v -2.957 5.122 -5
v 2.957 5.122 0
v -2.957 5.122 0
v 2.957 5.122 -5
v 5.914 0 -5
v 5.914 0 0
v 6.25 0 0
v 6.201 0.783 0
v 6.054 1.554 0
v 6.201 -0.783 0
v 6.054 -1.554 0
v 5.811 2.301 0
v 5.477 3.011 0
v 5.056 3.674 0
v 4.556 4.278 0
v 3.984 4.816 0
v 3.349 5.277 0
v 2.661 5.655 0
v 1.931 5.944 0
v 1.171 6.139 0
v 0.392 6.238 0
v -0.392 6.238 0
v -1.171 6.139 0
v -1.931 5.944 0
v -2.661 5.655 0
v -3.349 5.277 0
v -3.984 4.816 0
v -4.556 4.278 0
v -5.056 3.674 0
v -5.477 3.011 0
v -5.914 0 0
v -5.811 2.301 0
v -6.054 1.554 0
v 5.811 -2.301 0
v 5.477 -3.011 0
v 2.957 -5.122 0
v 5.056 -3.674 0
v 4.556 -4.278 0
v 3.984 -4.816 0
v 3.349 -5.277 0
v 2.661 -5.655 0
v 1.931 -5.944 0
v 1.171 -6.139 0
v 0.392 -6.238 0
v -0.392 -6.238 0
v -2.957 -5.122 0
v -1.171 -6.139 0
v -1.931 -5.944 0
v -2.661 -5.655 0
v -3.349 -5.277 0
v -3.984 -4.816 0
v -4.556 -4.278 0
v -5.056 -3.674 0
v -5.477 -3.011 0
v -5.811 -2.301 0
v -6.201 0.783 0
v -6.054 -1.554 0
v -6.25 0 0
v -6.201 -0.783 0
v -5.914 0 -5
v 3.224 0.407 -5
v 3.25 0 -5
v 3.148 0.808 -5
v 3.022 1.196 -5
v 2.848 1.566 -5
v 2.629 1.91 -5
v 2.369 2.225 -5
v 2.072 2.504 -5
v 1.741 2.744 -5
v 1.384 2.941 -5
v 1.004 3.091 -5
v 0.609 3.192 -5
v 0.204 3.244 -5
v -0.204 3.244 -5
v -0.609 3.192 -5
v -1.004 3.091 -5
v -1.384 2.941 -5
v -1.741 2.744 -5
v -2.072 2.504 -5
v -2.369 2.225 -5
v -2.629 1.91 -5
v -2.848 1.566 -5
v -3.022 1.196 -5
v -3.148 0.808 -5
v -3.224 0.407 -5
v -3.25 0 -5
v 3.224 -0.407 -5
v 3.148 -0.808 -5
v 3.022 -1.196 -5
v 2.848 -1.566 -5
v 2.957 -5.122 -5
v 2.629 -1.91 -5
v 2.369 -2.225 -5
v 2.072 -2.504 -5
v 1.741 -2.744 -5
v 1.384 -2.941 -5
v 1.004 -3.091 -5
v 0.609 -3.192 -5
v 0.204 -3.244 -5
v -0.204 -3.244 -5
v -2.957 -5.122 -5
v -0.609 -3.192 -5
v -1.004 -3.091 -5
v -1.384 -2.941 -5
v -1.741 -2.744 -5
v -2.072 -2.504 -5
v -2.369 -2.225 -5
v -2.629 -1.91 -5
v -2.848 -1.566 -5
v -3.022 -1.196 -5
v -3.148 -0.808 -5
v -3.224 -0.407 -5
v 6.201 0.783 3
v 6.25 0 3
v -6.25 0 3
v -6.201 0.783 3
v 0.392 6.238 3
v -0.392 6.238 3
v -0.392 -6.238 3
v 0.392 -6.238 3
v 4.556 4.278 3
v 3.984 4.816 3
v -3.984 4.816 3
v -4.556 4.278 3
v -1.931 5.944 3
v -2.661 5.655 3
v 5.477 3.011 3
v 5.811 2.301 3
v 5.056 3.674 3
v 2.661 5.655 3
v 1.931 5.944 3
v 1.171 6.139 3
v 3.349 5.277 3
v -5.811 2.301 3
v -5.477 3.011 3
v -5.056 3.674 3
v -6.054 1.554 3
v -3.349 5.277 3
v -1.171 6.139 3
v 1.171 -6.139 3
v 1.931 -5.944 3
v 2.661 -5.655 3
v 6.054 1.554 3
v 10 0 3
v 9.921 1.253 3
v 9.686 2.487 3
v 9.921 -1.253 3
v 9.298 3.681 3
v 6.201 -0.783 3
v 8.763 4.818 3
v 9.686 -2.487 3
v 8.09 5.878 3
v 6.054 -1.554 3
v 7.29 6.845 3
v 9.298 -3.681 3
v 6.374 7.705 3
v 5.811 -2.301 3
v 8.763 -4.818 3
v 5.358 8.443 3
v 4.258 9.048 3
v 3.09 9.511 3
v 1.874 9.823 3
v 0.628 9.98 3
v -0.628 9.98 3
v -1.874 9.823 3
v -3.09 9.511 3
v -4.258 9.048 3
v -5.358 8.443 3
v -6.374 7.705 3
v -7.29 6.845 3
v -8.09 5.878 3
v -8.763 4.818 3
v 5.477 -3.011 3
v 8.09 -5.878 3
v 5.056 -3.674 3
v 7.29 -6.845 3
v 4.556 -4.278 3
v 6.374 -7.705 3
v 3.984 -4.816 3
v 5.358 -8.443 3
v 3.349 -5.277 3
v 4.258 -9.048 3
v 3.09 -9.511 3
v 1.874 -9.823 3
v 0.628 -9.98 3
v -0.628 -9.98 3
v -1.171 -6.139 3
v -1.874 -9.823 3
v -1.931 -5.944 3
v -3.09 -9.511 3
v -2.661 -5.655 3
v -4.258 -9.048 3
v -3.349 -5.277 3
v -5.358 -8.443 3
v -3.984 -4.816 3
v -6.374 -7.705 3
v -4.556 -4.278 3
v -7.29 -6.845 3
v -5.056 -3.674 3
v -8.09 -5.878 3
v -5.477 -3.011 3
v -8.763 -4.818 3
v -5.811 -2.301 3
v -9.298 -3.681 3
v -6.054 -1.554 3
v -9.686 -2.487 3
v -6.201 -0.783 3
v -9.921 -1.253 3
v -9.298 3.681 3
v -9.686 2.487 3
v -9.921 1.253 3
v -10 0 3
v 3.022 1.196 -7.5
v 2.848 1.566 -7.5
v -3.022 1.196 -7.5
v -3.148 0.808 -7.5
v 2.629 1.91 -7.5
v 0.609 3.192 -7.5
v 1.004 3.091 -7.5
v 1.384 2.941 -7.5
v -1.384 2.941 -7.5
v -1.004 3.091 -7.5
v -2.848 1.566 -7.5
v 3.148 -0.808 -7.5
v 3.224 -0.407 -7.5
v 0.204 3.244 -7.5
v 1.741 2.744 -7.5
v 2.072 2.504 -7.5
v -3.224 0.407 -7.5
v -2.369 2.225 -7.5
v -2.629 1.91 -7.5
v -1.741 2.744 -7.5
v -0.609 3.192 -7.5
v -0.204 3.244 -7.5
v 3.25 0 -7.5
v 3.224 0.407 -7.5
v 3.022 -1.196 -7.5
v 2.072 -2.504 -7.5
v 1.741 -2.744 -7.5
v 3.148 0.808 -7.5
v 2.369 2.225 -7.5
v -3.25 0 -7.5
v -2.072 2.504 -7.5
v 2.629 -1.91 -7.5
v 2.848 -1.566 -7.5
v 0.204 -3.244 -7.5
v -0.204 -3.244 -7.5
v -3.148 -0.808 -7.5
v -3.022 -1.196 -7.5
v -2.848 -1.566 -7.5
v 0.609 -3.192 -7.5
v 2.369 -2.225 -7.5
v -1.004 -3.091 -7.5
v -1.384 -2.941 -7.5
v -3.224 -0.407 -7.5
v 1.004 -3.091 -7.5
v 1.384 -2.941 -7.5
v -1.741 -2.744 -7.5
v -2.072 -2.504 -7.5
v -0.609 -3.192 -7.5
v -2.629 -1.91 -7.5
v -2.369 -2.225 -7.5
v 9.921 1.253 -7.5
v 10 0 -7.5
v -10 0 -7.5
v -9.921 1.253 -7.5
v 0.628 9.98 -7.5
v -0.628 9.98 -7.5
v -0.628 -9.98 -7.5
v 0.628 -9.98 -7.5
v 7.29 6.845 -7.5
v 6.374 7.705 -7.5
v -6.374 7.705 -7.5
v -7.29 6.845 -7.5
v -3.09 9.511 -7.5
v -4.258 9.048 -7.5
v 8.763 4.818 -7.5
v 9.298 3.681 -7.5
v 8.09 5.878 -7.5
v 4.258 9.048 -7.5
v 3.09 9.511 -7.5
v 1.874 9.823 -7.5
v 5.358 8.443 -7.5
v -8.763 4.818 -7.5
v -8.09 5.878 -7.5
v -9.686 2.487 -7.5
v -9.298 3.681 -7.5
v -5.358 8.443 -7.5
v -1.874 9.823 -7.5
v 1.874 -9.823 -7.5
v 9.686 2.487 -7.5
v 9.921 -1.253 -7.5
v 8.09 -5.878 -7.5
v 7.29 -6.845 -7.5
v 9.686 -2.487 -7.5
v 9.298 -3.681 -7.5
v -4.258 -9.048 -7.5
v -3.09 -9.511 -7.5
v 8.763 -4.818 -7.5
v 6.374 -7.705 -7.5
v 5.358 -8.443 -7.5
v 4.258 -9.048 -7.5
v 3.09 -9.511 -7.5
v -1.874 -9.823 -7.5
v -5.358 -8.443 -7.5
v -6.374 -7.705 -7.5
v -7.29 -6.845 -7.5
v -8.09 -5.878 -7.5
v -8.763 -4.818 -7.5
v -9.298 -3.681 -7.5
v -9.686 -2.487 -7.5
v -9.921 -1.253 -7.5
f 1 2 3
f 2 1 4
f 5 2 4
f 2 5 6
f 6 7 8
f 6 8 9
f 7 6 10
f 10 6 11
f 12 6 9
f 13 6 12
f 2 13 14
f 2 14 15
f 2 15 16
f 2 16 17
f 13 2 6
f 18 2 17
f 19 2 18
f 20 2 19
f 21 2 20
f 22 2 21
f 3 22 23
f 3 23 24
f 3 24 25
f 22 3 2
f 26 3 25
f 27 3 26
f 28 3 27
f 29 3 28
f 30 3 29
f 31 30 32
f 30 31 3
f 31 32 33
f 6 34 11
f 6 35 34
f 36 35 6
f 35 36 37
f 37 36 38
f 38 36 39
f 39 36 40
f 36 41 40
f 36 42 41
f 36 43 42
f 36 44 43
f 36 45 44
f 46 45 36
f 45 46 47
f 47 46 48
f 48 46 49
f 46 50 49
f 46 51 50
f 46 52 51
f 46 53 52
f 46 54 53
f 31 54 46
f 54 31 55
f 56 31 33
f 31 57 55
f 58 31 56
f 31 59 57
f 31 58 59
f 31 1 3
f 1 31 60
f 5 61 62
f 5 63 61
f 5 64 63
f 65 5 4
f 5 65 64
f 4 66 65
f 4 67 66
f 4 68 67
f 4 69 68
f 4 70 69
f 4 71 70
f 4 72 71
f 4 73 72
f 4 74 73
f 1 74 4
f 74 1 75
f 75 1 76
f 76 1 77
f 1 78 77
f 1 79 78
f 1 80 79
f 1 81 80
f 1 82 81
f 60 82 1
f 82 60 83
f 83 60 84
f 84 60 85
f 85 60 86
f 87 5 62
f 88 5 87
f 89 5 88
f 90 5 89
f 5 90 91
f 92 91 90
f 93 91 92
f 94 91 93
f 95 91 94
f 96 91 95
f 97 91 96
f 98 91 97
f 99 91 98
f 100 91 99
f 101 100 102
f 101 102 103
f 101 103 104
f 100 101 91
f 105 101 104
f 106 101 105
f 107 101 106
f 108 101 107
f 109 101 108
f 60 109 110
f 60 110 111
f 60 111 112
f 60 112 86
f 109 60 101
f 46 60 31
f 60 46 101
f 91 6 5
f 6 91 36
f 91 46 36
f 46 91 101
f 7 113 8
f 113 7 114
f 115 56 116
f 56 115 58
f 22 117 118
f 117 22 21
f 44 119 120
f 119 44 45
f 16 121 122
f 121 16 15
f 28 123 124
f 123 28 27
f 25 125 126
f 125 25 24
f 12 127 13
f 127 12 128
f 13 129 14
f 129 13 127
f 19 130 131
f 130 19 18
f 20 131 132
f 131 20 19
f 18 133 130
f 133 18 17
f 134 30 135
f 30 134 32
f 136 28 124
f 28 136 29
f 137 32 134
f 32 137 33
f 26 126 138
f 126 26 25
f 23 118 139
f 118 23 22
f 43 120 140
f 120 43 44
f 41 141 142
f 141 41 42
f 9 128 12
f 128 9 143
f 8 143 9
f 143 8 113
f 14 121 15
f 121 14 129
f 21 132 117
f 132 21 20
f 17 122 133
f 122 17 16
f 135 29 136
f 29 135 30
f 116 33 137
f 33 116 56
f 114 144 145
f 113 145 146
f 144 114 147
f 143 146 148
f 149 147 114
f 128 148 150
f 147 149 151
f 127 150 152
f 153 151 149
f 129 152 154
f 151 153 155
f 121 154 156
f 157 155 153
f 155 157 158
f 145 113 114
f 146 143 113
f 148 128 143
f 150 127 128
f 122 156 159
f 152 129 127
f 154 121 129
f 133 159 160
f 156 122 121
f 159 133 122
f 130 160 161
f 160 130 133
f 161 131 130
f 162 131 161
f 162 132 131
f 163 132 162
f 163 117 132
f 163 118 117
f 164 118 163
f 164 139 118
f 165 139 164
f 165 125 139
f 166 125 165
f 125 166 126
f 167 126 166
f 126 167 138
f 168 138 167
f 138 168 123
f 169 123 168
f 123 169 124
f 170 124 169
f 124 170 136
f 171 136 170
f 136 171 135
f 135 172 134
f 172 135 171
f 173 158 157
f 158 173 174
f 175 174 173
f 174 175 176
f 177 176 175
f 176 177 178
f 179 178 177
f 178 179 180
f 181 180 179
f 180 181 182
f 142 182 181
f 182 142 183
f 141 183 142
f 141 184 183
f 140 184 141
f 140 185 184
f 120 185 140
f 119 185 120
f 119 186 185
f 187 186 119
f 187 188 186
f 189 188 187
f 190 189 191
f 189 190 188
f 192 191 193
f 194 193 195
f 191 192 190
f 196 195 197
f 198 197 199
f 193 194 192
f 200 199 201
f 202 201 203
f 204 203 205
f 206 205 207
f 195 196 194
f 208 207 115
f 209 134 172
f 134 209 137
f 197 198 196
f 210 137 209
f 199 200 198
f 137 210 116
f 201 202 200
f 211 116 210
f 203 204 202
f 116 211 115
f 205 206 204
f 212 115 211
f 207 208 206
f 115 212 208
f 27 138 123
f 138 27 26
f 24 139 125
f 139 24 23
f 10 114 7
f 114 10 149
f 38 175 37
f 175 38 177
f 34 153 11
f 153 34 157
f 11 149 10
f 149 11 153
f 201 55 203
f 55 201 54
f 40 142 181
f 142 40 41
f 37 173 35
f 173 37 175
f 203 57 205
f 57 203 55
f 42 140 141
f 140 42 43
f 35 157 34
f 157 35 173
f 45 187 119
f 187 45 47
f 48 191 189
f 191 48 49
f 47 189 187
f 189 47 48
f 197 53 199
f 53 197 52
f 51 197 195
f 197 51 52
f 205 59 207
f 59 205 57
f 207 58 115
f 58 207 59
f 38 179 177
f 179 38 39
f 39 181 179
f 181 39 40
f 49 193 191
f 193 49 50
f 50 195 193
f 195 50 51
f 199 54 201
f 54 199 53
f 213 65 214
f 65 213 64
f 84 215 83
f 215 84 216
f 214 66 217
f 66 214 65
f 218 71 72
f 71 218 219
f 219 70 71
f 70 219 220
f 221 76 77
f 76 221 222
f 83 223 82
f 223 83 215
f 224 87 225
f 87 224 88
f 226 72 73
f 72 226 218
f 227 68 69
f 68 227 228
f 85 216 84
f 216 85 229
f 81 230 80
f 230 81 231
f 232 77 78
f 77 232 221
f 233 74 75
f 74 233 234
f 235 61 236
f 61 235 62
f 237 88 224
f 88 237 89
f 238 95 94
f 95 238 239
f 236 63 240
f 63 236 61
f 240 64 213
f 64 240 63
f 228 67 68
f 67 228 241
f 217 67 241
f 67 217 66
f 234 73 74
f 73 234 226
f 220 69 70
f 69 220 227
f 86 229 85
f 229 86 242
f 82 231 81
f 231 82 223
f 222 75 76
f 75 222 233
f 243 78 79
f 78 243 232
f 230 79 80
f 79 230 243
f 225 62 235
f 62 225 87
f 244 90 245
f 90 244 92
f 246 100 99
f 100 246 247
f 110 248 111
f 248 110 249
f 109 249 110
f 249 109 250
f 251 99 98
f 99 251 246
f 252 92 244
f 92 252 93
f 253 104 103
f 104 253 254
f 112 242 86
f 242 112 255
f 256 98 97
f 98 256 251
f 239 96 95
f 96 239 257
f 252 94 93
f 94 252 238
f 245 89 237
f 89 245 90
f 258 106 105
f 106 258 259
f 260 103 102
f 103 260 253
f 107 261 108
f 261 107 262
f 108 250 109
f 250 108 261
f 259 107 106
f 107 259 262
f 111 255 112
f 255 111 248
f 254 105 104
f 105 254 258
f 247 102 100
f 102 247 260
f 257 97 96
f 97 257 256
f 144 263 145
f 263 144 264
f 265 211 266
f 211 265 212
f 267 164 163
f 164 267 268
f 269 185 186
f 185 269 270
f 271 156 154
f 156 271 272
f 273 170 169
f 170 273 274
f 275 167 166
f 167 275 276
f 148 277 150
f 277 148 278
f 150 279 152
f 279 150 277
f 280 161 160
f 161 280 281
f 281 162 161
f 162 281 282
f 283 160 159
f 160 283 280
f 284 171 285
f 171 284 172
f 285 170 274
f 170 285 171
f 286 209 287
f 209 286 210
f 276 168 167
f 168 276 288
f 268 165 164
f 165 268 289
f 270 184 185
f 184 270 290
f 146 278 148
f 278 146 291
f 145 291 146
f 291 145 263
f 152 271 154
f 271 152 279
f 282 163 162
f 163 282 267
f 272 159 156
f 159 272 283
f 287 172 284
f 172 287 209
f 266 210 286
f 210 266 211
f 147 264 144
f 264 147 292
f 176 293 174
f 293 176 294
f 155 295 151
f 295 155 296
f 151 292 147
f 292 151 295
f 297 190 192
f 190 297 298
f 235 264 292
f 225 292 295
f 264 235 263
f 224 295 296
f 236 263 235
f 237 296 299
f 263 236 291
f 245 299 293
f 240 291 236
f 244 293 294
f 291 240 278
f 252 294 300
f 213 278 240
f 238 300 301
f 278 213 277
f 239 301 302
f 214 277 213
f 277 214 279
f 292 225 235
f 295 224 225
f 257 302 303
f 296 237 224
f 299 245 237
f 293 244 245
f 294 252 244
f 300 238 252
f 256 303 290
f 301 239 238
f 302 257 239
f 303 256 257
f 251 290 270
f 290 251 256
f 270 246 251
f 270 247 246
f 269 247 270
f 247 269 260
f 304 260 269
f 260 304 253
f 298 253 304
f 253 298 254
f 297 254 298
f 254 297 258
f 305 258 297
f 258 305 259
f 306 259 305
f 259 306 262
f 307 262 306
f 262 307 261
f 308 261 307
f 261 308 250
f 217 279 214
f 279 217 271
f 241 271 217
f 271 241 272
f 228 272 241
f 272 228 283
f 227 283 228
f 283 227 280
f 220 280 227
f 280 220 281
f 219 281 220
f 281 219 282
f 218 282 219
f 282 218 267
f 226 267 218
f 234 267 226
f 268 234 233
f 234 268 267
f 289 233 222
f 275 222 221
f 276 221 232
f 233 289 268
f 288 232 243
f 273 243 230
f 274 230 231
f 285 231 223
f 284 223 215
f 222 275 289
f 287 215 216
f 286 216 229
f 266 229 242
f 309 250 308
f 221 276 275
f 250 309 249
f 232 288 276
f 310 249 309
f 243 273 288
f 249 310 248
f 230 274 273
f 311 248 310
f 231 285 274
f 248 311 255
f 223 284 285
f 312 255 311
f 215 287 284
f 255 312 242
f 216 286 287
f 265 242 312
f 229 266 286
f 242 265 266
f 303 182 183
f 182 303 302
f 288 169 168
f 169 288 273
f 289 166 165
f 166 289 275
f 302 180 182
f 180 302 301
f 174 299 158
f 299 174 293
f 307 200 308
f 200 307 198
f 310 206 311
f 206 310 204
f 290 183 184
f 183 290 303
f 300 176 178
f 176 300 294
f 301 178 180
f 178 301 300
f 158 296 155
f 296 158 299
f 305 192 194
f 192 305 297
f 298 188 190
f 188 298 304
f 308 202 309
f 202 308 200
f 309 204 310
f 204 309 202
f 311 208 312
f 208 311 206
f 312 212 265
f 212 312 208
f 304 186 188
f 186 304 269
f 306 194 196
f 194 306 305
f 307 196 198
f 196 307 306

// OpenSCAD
$fn = 50;


difference() {
	union() {
		translate(v = [0, 0, -7.5000000000]) {
			cylinder(h = 10.5000000000, r = 10.0000000000);
		}
	}
	union() {
		translate(v = [0, 0, 0]) {
			rotate(a = [0, 0, 0]) {
				difference() {
					union() {
						translate(v = [0, 0, -5]) {
							linear_extrude(height = 5) {
								polygon(points = [[5.9142500000, 0.0000000000], [2.9571250000, 5.1218907443], [-2.9571250000, 5.1218907443], [-5.9142500000, 0.0000000000], [-2.9571250000, -5.1218907443], [2.9571250000, -5.1218907443]]);
							}
						}
					}
					union();
				}
			}
		}
		#cylinder(h = 3, r = 6.2500000000);
		#translate(v = [0, 0, -100.0000000000]) {
			cylinder(h = 200, r = 3.2500000000);
		}
	}
}
